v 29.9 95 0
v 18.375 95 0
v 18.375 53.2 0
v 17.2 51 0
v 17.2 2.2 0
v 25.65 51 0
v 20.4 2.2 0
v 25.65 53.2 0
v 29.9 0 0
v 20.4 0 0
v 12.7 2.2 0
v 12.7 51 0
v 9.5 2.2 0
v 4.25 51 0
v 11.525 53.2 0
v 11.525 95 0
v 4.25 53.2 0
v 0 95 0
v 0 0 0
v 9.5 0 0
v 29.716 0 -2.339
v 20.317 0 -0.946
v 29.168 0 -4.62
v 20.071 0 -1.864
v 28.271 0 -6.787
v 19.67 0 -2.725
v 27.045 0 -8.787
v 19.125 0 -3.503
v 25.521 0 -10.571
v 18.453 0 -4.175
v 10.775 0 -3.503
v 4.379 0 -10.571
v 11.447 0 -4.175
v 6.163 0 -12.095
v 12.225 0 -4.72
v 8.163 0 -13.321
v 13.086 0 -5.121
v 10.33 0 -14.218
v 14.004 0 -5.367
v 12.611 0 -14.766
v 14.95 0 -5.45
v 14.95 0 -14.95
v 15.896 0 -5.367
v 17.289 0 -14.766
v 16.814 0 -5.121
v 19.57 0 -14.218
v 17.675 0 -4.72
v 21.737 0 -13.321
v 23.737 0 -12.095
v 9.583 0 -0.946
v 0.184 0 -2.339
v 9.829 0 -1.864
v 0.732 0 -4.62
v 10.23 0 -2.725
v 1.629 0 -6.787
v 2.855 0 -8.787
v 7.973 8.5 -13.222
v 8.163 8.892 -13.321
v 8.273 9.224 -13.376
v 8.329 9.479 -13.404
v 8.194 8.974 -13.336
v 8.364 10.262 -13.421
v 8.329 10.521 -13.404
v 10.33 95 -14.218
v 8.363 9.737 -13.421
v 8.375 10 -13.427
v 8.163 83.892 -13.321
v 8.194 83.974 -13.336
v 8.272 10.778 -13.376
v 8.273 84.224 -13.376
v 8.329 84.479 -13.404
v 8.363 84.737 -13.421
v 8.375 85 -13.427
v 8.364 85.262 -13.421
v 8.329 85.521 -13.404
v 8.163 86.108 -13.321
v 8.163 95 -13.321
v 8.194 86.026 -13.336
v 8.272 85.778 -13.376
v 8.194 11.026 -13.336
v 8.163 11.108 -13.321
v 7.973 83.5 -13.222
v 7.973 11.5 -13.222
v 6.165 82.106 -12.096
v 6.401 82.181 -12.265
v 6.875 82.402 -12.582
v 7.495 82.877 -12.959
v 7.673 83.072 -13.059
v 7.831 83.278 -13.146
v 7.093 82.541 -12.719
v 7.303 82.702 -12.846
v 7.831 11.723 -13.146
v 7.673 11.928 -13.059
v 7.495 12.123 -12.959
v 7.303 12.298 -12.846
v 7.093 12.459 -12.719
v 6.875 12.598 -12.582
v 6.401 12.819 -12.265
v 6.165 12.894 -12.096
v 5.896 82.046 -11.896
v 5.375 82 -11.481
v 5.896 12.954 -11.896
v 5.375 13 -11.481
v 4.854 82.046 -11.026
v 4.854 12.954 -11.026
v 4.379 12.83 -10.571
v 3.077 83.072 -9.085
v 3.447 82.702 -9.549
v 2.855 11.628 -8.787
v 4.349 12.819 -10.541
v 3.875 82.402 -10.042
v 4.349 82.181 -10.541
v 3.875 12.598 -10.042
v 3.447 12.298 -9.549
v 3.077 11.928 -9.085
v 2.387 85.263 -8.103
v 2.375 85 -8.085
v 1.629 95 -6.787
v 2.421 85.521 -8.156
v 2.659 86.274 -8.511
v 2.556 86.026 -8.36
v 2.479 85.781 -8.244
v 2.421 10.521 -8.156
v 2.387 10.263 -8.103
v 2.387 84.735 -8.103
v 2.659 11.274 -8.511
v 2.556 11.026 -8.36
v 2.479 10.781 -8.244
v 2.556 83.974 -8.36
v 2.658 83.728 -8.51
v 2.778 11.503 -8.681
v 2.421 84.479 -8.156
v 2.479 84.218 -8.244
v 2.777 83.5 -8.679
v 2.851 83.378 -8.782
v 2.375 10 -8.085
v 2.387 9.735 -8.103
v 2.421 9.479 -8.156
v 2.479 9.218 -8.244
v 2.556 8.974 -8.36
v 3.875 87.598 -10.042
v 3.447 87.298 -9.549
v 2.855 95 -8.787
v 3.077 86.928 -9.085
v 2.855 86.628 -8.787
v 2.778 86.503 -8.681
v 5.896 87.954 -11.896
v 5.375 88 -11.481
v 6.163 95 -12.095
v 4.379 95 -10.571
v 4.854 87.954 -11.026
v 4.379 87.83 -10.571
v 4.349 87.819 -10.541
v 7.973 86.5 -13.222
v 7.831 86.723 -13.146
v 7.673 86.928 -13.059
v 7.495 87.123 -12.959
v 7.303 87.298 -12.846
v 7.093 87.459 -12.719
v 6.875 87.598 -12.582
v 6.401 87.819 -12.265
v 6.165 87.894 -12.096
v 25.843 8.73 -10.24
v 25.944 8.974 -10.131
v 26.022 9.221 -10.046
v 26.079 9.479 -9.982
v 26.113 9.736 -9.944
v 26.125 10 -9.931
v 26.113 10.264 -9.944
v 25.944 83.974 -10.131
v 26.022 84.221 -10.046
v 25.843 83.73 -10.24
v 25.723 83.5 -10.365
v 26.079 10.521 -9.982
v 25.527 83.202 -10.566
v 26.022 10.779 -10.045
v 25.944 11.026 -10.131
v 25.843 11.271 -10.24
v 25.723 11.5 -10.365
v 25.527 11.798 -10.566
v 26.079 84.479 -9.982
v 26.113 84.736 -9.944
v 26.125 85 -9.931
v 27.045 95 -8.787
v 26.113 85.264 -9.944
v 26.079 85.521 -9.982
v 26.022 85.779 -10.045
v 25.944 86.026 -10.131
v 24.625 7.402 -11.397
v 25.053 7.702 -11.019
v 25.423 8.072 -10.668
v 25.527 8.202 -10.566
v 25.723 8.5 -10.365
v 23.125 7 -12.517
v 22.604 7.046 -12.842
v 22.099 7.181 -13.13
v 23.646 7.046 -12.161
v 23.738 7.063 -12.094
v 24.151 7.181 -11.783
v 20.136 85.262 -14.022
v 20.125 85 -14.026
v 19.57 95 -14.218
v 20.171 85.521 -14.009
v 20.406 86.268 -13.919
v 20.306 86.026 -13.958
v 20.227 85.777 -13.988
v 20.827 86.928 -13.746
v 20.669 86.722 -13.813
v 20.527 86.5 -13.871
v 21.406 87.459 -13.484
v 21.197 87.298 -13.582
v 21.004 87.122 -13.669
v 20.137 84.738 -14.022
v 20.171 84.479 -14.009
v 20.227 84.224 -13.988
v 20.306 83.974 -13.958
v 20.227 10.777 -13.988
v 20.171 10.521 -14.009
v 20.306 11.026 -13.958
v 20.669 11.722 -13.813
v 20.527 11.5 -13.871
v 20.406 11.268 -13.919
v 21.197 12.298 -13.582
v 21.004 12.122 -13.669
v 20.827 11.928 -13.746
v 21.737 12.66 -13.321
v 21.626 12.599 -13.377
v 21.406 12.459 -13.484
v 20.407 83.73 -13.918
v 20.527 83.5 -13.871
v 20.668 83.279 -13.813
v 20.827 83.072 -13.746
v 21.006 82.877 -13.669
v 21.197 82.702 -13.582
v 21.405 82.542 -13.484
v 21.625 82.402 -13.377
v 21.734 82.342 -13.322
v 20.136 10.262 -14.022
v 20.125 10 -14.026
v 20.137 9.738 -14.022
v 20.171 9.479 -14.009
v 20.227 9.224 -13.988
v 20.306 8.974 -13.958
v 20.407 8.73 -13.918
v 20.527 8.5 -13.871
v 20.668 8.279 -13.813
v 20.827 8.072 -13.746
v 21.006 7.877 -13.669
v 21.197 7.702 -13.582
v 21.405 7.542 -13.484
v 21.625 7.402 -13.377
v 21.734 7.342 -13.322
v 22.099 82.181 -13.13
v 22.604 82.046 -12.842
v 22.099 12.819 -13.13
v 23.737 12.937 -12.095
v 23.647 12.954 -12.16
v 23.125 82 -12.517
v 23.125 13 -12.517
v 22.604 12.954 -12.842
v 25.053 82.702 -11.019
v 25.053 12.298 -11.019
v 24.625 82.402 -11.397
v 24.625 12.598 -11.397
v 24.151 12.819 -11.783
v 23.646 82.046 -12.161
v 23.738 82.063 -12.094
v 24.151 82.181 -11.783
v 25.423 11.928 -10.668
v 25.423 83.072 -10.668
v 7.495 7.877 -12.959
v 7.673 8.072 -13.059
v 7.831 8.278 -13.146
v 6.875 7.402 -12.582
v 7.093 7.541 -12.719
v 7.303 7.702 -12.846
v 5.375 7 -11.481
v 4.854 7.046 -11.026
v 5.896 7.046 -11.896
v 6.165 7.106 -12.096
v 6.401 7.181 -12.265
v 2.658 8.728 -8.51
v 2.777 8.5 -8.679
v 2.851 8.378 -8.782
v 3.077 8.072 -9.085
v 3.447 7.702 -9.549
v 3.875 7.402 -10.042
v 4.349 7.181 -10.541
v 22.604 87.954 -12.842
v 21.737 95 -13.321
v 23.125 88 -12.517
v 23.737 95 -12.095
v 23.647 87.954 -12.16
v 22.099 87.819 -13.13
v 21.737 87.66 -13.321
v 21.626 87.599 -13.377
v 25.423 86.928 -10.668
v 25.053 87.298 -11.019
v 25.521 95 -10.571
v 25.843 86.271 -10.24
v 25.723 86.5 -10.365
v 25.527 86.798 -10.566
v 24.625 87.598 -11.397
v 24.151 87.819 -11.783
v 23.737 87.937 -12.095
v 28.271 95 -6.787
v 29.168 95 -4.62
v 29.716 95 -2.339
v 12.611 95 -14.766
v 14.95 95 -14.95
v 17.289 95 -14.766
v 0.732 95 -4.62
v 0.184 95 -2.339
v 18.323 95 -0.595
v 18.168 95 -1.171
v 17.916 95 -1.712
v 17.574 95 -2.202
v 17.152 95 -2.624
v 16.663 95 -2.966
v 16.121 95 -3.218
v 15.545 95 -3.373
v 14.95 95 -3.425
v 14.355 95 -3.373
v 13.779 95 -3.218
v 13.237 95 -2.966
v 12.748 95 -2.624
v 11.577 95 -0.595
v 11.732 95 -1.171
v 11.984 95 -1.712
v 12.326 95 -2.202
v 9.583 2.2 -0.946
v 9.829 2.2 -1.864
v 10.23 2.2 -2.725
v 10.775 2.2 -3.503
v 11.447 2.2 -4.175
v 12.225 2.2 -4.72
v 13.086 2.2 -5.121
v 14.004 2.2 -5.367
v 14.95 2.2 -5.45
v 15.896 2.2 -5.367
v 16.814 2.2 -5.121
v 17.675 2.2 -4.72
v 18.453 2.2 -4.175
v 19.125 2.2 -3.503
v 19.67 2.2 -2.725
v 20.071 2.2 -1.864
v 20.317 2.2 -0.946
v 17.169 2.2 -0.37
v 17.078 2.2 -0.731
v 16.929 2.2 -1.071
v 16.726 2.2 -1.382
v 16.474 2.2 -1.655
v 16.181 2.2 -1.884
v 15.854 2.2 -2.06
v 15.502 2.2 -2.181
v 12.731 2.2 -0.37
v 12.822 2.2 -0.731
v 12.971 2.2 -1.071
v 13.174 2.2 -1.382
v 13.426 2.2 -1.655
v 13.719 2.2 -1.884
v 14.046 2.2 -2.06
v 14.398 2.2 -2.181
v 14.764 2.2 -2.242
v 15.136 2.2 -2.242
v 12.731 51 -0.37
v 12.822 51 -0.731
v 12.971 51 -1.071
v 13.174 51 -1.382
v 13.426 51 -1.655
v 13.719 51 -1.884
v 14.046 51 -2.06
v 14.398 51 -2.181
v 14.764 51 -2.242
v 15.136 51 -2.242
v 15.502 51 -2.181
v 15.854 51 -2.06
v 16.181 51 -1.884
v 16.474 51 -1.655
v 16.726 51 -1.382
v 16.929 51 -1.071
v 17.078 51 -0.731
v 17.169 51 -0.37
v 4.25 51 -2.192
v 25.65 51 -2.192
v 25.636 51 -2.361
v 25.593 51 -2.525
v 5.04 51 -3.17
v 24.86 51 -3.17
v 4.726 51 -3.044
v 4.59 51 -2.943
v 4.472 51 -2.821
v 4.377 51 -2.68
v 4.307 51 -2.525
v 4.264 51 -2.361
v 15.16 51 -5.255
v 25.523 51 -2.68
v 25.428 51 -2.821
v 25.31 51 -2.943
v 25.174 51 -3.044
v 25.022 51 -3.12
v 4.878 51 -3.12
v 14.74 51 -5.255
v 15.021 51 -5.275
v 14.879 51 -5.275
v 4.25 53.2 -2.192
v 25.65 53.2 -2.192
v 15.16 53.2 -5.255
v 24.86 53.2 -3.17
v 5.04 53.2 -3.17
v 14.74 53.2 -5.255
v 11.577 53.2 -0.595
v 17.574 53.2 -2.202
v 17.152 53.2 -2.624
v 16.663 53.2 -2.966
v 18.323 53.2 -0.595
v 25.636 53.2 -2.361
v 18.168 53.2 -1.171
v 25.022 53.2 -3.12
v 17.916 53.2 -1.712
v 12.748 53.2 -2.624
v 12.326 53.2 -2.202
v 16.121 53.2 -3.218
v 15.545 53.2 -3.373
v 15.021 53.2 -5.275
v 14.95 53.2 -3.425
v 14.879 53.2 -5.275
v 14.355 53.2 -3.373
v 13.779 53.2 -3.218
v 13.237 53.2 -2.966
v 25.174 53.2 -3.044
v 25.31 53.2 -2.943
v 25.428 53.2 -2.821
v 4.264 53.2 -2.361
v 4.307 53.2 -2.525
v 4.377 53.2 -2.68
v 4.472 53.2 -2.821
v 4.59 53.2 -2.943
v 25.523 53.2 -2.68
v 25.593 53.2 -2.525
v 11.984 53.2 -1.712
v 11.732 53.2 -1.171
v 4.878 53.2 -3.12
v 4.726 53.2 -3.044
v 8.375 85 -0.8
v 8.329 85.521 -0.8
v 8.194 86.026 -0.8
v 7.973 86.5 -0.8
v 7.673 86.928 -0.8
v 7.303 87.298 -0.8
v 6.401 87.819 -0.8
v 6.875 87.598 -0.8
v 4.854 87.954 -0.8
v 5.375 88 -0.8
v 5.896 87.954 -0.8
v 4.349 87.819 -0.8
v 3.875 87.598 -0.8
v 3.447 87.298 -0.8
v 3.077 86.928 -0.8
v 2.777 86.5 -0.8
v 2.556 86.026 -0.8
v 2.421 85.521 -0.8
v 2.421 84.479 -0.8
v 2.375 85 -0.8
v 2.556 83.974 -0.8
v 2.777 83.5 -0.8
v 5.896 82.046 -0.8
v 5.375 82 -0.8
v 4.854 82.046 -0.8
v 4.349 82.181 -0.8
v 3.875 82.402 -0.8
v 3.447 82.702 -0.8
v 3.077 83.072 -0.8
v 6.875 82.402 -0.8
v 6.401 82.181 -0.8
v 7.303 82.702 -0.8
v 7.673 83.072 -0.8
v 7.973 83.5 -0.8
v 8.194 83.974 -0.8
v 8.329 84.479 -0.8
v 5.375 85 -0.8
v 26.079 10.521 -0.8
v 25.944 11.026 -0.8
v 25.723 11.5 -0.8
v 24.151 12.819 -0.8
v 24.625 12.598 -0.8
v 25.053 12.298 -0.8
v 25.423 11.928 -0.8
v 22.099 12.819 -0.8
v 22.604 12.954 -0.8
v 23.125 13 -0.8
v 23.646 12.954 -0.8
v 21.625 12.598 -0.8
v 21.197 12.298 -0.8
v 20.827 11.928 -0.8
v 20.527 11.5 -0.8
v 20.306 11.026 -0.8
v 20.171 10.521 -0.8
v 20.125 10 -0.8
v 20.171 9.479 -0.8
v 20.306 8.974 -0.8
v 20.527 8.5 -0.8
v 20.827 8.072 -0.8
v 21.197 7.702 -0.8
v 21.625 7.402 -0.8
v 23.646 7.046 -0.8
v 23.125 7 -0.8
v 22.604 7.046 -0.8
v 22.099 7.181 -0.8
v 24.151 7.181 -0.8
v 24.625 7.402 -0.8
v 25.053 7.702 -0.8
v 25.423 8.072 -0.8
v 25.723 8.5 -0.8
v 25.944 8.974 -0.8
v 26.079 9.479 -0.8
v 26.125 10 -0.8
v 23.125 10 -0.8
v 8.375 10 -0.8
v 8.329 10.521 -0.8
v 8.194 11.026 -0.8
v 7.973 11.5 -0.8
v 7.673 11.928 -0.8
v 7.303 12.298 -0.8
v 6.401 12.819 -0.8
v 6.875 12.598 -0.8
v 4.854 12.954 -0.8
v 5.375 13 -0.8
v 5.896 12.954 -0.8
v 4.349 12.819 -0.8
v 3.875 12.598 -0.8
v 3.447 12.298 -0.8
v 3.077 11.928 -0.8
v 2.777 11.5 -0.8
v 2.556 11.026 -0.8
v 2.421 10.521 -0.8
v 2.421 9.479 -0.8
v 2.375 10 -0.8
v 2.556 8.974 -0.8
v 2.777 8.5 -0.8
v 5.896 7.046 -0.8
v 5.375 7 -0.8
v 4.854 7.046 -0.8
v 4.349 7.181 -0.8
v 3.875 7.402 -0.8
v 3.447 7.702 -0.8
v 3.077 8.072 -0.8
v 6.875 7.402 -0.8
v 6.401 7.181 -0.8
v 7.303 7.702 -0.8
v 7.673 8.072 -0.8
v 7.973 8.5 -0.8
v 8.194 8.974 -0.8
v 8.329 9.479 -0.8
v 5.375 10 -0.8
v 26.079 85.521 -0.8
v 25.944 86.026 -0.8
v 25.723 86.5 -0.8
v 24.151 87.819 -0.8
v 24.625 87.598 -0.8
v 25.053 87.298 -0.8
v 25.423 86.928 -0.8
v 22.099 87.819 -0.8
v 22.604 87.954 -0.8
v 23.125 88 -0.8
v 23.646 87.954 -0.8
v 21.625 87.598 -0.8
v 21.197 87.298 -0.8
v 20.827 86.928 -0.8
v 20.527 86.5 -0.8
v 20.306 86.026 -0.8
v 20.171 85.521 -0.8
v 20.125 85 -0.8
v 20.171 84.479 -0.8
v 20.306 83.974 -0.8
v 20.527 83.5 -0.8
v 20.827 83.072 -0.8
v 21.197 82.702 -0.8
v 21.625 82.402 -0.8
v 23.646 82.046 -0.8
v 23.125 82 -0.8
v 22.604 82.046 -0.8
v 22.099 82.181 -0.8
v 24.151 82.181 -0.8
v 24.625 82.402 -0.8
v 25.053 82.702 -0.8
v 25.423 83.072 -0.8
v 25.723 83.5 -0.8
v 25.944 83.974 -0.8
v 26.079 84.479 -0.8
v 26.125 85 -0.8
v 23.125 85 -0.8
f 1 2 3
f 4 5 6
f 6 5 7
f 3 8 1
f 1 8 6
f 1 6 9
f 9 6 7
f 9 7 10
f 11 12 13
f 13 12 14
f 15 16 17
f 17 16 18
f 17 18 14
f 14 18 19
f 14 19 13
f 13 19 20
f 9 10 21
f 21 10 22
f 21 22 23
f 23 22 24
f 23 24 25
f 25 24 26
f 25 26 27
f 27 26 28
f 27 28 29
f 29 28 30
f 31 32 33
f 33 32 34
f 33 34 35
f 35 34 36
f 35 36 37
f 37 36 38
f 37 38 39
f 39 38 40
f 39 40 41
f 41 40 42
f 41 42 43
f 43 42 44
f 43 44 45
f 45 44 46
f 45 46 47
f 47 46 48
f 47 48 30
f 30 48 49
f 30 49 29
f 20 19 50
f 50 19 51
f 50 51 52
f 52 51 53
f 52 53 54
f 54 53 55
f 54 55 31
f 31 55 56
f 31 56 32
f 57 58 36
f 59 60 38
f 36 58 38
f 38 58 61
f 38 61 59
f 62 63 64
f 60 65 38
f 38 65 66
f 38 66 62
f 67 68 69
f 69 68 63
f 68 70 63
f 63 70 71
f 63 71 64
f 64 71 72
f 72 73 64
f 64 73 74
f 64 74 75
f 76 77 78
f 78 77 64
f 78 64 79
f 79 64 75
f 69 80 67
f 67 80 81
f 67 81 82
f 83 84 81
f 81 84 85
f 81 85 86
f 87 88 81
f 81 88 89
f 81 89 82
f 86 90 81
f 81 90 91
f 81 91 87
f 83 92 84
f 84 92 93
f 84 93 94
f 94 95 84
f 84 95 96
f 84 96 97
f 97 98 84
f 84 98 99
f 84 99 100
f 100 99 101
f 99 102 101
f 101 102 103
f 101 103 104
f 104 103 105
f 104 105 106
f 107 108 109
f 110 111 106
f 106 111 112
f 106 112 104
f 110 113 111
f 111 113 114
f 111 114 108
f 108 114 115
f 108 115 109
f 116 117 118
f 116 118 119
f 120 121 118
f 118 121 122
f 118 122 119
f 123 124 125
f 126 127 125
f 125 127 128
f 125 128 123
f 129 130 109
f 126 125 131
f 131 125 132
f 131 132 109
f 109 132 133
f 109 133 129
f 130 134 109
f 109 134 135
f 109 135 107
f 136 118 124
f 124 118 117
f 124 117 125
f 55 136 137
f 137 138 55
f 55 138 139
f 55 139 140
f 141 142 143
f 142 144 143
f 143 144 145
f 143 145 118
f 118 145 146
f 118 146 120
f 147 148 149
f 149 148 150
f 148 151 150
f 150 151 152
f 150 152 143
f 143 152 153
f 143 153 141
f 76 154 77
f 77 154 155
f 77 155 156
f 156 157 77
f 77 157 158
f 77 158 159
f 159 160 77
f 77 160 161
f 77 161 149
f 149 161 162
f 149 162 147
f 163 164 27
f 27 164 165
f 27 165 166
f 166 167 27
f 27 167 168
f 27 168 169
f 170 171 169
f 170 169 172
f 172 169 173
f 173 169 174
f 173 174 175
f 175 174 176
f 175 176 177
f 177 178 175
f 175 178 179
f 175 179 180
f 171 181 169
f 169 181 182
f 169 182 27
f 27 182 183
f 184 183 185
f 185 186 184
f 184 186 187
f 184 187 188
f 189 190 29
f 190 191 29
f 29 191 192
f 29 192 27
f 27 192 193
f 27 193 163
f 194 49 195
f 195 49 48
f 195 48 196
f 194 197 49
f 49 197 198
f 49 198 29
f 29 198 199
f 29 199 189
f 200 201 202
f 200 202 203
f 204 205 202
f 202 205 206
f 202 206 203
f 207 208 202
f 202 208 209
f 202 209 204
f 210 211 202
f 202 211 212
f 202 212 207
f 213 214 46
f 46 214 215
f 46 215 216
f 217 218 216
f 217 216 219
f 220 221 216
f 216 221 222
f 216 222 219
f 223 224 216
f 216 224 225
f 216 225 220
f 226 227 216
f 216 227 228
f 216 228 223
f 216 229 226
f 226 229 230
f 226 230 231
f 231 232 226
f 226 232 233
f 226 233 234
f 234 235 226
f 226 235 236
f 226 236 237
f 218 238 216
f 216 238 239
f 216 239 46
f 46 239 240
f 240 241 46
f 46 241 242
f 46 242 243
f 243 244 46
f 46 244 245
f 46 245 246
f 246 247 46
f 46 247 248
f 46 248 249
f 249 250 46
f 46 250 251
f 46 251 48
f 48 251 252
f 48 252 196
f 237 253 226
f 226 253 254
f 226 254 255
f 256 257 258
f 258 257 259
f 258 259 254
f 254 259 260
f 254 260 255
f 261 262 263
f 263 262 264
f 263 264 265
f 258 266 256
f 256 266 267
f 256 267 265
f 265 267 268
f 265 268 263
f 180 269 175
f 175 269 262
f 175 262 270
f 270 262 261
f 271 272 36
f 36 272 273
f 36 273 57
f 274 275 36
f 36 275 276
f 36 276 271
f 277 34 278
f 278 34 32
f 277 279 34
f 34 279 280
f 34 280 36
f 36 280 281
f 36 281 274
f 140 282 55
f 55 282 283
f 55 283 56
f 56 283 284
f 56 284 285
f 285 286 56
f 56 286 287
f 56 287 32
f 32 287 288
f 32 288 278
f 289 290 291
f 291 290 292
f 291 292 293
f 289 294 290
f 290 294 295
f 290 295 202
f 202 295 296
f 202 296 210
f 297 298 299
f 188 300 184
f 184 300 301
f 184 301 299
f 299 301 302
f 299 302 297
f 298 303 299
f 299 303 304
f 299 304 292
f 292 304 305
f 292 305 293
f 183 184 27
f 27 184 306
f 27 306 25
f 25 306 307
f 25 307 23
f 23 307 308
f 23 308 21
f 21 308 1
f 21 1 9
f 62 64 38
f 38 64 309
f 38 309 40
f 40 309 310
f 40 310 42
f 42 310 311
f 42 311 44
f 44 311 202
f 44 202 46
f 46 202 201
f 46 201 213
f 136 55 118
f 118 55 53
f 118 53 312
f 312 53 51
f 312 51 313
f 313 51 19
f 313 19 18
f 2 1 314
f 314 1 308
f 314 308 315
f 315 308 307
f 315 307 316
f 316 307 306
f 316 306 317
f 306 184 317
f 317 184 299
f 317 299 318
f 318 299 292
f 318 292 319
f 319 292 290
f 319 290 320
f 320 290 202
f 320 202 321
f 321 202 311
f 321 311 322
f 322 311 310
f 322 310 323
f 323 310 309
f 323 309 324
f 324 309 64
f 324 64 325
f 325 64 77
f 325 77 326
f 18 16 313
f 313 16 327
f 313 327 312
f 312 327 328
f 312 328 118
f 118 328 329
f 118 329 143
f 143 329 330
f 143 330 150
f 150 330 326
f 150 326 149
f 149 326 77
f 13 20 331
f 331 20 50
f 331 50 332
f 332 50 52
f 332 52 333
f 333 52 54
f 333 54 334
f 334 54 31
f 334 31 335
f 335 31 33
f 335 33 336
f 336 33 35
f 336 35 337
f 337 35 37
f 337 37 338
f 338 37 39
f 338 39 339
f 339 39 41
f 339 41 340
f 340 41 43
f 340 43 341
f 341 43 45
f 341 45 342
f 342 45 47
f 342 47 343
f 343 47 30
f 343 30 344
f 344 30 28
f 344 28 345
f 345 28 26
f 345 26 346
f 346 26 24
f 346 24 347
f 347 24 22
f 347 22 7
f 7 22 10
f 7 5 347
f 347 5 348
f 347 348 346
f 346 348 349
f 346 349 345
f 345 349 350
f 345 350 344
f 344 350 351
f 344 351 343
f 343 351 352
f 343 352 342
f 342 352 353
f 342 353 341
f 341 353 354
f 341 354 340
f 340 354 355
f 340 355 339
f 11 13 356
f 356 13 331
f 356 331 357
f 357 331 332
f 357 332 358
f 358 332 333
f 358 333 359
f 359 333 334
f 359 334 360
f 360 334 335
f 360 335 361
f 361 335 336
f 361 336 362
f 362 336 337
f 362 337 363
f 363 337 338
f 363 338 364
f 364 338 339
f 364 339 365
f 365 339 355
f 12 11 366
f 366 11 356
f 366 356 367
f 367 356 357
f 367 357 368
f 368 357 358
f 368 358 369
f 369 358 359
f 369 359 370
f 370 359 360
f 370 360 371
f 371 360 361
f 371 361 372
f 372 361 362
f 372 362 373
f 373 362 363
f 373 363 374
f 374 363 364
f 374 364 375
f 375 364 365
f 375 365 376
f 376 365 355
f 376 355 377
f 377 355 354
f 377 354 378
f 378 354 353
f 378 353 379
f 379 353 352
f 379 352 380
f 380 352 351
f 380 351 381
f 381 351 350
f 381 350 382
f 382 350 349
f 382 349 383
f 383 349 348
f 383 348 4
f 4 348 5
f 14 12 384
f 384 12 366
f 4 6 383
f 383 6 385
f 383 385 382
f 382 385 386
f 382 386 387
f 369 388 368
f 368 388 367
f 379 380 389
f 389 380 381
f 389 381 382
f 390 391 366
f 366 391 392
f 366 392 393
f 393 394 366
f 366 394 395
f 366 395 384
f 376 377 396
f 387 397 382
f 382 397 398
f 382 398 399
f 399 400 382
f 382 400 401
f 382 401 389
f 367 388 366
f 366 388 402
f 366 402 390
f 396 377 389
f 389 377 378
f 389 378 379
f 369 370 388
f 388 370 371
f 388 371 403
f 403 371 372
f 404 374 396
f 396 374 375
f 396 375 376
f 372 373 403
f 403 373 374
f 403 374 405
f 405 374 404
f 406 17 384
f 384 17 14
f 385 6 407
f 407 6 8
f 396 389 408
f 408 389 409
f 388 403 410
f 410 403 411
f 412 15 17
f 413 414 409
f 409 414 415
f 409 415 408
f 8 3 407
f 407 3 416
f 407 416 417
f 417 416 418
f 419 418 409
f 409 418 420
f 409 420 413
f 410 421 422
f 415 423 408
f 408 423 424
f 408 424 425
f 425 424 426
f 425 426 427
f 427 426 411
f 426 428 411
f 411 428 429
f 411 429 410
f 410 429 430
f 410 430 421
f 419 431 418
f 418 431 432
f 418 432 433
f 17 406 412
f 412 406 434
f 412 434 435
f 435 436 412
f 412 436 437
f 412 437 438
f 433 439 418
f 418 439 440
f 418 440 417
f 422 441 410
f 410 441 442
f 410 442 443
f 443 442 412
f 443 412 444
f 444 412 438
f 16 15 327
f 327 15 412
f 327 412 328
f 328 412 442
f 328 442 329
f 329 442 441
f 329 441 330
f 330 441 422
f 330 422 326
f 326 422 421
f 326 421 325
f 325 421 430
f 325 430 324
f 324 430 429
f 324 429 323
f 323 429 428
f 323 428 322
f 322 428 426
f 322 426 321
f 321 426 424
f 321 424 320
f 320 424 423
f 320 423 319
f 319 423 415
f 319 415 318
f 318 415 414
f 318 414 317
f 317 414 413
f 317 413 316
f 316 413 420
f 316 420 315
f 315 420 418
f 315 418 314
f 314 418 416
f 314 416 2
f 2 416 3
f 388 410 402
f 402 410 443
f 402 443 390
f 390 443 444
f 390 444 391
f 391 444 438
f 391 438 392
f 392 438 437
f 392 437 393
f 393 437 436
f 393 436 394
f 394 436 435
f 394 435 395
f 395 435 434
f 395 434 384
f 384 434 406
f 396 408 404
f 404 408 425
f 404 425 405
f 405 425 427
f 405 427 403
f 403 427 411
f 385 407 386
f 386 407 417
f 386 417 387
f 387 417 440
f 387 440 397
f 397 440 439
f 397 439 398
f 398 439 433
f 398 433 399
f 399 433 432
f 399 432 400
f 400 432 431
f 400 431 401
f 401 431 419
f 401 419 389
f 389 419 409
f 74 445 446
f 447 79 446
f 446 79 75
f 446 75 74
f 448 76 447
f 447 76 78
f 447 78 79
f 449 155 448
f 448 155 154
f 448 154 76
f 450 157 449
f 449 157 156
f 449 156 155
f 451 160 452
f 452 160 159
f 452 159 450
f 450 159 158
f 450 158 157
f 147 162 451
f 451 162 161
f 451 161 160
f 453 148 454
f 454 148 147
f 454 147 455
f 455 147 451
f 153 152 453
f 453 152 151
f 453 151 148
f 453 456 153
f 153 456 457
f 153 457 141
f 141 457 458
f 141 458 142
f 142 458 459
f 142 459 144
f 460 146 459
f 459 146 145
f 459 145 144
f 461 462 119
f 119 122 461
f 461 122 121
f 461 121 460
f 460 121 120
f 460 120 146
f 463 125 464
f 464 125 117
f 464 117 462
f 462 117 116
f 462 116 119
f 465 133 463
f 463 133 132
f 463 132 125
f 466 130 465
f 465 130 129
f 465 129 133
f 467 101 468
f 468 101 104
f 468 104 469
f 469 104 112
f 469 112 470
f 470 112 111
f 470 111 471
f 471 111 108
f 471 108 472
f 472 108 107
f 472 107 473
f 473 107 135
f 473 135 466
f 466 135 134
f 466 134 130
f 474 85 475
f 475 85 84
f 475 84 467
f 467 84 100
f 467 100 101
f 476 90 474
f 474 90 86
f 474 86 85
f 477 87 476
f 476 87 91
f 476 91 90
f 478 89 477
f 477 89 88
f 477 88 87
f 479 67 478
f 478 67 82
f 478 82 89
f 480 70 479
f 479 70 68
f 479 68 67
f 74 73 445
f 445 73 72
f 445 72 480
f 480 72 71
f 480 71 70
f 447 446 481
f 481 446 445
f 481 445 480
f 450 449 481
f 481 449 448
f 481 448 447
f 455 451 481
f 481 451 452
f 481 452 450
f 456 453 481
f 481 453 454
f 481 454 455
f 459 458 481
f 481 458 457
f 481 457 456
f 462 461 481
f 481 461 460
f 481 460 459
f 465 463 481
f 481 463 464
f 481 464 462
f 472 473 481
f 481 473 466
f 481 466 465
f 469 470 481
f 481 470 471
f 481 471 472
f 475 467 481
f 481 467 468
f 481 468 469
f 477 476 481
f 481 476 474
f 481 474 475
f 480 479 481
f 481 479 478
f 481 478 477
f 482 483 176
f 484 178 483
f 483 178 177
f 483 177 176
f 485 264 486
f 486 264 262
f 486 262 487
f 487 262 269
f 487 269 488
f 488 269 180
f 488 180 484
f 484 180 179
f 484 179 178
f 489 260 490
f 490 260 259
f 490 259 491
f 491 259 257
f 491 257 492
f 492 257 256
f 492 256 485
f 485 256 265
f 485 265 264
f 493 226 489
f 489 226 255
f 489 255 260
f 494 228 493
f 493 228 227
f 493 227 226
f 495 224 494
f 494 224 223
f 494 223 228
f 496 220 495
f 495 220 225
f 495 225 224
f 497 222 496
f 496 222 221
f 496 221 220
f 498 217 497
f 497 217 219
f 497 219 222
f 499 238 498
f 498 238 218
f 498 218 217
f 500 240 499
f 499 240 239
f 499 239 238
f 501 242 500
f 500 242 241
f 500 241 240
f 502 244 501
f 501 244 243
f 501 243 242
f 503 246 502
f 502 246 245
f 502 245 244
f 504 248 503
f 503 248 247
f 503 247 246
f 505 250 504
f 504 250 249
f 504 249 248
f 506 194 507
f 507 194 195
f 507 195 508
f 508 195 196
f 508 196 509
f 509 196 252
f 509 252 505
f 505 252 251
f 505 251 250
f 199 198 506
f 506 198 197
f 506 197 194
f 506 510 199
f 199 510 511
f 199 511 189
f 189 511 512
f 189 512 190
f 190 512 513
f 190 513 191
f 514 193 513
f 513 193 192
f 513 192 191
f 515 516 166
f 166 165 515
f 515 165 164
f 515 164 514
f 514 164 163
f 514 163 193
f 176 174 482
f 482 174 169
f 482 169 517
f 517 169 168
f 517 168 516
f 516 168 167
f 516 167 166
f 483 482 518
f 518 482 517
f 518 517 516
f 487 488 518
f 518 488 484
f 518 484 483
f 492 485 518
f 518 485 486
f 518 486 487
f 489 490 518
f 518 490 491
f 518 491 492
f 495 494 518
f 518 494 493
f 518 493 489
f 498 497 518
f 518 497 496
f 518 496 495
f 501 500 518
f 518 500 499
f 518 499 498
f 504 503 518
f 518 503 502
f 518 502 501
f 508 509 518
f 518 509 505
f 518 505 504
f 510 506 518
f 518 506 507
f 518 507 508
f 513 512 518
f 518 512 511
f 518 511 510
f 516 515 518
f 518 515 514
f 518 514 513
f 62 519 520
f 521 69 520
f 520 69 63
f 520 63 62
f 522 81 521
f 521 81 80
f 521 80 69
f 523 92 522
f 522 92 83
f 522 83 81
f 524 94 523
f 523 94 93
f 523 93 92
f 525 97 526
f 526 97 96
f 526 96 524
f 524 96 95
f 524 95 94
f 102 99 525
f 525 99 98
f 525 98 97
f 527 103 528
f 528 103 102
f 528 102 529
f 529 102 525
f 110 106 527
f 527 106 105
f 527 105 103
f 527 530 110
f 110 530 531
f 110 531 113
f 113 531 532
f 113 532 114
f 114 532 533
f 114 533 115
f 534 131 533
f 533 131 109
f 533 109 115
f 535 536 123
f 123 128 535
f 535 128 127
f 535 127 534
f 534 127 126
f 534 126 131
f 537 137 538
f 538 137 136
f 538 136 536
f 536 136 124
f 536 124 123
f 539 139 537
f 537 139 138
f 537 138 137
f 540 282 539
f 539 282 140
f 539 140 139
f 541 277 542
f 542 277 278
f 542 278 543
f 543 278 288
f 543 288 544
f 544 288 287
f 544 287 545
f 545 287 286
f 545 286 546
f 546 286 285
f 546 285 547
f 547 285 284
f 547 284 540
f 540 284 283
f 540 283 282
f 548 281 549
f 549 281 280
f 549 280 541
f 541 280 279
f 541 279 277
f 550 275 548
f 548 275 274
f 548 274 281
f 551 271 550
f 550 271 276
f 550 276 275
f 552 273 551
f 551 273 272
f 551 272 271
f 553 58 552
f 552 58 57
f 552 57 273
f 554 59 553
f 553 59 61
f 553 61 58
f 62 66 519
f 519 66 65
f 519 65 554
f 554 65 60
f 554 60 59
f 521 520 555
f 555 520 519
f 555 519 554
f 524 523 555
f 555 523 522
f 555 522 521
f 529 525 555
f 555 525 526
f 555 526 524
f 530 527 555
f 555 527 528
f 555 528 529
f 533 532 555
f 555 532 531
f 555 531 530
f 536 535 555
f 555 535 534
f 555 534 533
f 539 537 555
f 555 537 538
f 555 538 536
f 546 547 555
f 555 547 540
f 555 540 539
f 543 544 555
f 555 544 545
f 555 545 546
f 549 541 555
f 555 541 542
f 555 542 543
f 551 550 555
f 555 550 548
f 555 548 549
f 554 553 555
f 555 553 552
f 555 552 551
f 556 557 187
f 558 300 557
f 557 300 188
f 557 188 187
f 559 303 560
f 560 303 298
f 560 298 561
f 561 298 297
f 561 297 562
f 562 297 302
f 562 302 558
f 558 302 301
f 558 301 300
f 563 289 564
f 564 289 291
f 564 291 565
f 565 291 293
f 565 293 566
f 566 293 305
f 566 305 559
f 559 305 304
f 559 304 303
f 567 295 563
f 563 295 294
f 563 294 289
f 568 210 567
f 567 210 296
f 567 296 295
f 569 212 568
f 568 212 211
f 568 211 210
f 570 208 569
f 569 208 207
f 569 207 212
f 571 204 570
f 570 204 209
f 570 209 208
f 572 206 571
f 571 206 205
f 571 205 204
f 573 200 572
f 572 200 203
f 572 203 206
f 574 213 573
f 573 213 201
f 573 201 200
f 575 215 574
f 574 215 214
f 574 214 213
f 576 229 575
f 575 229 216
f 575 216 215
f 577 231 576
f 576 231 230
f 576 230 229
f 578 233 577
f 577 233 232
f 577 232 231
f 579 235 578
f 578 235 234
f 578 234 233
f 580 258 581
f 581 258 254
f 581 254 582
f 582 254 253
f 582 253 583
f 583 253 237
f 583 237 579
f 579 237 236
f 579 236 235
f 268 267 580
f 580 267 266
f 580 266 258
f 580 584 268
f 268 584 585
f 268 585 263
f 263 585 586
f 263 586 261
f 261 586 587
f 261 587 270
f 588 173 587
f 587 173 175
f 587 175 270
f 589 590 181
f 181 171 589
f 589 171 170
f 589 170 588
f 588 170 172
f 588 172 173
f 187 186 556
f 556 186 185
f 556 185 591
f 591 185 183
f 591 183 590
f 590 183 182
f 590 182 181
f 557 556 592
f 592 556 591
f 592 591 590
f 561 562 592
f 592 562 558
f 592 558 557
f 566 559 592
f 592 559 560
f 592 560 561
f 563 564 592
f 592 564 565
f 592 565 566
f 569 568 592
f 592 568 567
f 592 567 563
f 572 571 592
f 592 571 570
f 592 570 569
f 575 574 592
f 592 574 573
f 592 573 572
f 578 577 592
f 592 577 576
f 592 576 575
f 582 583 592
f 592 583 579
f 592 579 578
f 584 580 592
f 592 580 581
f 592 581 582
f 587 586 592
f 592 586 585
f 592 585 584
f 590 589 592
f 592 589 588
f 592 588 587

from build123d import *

# Parameters (mm, degrees)
BOSS_EXTRUDE1_DEPTH = 95
CUT_EXTRUDE1_DEPTH  = 2.2
CUT_EXTRUDE2_DEPTH  = 48.8
CUT_EXTRUDE3_DEPTH  = 2.2
SKETCH8_R           = 3.425
CUT_EXTRUDE4_DEPTH  = 50
FILLET1_R           = 1
SKETCH11_R          = 3
CUT_EXTRUDE5_DEPTH  = 15


with BuildPart() as part:
    # Sketch1 → Boss-Extrude1 (new body)
    with BuildSketch(Plane(origin=(0, 0, 0), x_dir=(1, 0, 0), z_dir=(0, 1, 0))):
        with BuildLine():
            ThreePointArc((0, 0), (14.95, 14.95), (29.9, 0))
            Line((29.9, 0), (0, 0))
        make_face()
    extrude(amount=BOSS_EXTRUDE1_DEPTH)

    # Sketch4 → Cut-Extrude1 (cut)
    with BuildSketch(Plane(origin=(0, 0, 0), x_dir=(1, 0, 0), z_dir=(0, 1, 0))):
        with BuildLine():
            Line((20.4, 0), (9.5, 0))
            ThreePointArc((9.5, 0), (14.95, 5.45), (20.4, 0))
        make_face()
    extrude(amount=CUT_EXTRUDE1_DEPTH, mode=Mode.SUBTRACT)

    # Sketch5 → Cut-Extrude2 (cut)
    with BuildSketch(Plane(origin=(0, 2.2, 0), x_dir=(-1, 0, 0), z_dir=(0, -1, 0))):
        with BuildLine():
            ThreePointArc((-12.7, 0), (-14.95, 2.25), (-17.2, 0))
            Line((-17.2, 0), (-12.7, 0))
        make_face()
        with BuildLine():
            Line((-12.7, 0), (-17.2, 0))
            ThreePointArc((-17.2, 0), (-14.95, -2.25), (-12.7, 0))
        make_face()
    extrude(amount=-CUT_EXTRUDE2_DEPTH, mode=Mode.SUBTRACT)

    # Sketch6 → Cut-Extrude3 (cut)
    with BuildSketch(Plane(origin=(0, 51, 0), x_dir=(1, 0, 0), z_dir=(0, 1, 0))):
        Polygon((25.65, 0), (4.25, 0), (4.25, 3), (14.95, 5.3), (25.65, 3), align=None)
    extrude(amount=CUT_EXTRUDE3_DEPTH, mode=Mode.SUBTRACT)

    # Sketch8 → Cut-Extrude4 (cut)
    with BuildSketch(Plane(origin=(0, 53.2, 0), x_dir=(-1, 0, 0), z_dir=(0, -1, 0))):
        with Locations((-14.95, 0)):
            Circle(SKETCH8_R)
    extrude(amount=-CUT_EXTRUDE4_DEPTH, mode=Mode.SUBTRACT)

    # Fillet1
    fillet1_edges = [part.edges().sort_by_distance(p)[0] for p in [
        (4.25, 52.1, -3),
        (25.65, 52.1, -3),
        (14.95, 52.1, -5.3),
    ]]
    fillet(fillet1_edges, radius=FILLET1_R)

    # Sketch11 → Cut-Extrude5 (cut)
    with BuildSketch(Plane.XY.offset(-0.8)):
        with Locations((5.375, 85)):
            Circle(SKETCH11_R)
        with Locations((23.125, 85)):
            Circle(SKETCH11_R)
        with Locations((5.375, 10)):
            Circle(SKETCH11_R)
        with Locations((23.125, 10)):
            Circle(SKETCH11_R)
    extrude(amount=-CUT_EXTRUDE5_DEPTH, mode=Mode.SUBTRACT)


solid = part.part
